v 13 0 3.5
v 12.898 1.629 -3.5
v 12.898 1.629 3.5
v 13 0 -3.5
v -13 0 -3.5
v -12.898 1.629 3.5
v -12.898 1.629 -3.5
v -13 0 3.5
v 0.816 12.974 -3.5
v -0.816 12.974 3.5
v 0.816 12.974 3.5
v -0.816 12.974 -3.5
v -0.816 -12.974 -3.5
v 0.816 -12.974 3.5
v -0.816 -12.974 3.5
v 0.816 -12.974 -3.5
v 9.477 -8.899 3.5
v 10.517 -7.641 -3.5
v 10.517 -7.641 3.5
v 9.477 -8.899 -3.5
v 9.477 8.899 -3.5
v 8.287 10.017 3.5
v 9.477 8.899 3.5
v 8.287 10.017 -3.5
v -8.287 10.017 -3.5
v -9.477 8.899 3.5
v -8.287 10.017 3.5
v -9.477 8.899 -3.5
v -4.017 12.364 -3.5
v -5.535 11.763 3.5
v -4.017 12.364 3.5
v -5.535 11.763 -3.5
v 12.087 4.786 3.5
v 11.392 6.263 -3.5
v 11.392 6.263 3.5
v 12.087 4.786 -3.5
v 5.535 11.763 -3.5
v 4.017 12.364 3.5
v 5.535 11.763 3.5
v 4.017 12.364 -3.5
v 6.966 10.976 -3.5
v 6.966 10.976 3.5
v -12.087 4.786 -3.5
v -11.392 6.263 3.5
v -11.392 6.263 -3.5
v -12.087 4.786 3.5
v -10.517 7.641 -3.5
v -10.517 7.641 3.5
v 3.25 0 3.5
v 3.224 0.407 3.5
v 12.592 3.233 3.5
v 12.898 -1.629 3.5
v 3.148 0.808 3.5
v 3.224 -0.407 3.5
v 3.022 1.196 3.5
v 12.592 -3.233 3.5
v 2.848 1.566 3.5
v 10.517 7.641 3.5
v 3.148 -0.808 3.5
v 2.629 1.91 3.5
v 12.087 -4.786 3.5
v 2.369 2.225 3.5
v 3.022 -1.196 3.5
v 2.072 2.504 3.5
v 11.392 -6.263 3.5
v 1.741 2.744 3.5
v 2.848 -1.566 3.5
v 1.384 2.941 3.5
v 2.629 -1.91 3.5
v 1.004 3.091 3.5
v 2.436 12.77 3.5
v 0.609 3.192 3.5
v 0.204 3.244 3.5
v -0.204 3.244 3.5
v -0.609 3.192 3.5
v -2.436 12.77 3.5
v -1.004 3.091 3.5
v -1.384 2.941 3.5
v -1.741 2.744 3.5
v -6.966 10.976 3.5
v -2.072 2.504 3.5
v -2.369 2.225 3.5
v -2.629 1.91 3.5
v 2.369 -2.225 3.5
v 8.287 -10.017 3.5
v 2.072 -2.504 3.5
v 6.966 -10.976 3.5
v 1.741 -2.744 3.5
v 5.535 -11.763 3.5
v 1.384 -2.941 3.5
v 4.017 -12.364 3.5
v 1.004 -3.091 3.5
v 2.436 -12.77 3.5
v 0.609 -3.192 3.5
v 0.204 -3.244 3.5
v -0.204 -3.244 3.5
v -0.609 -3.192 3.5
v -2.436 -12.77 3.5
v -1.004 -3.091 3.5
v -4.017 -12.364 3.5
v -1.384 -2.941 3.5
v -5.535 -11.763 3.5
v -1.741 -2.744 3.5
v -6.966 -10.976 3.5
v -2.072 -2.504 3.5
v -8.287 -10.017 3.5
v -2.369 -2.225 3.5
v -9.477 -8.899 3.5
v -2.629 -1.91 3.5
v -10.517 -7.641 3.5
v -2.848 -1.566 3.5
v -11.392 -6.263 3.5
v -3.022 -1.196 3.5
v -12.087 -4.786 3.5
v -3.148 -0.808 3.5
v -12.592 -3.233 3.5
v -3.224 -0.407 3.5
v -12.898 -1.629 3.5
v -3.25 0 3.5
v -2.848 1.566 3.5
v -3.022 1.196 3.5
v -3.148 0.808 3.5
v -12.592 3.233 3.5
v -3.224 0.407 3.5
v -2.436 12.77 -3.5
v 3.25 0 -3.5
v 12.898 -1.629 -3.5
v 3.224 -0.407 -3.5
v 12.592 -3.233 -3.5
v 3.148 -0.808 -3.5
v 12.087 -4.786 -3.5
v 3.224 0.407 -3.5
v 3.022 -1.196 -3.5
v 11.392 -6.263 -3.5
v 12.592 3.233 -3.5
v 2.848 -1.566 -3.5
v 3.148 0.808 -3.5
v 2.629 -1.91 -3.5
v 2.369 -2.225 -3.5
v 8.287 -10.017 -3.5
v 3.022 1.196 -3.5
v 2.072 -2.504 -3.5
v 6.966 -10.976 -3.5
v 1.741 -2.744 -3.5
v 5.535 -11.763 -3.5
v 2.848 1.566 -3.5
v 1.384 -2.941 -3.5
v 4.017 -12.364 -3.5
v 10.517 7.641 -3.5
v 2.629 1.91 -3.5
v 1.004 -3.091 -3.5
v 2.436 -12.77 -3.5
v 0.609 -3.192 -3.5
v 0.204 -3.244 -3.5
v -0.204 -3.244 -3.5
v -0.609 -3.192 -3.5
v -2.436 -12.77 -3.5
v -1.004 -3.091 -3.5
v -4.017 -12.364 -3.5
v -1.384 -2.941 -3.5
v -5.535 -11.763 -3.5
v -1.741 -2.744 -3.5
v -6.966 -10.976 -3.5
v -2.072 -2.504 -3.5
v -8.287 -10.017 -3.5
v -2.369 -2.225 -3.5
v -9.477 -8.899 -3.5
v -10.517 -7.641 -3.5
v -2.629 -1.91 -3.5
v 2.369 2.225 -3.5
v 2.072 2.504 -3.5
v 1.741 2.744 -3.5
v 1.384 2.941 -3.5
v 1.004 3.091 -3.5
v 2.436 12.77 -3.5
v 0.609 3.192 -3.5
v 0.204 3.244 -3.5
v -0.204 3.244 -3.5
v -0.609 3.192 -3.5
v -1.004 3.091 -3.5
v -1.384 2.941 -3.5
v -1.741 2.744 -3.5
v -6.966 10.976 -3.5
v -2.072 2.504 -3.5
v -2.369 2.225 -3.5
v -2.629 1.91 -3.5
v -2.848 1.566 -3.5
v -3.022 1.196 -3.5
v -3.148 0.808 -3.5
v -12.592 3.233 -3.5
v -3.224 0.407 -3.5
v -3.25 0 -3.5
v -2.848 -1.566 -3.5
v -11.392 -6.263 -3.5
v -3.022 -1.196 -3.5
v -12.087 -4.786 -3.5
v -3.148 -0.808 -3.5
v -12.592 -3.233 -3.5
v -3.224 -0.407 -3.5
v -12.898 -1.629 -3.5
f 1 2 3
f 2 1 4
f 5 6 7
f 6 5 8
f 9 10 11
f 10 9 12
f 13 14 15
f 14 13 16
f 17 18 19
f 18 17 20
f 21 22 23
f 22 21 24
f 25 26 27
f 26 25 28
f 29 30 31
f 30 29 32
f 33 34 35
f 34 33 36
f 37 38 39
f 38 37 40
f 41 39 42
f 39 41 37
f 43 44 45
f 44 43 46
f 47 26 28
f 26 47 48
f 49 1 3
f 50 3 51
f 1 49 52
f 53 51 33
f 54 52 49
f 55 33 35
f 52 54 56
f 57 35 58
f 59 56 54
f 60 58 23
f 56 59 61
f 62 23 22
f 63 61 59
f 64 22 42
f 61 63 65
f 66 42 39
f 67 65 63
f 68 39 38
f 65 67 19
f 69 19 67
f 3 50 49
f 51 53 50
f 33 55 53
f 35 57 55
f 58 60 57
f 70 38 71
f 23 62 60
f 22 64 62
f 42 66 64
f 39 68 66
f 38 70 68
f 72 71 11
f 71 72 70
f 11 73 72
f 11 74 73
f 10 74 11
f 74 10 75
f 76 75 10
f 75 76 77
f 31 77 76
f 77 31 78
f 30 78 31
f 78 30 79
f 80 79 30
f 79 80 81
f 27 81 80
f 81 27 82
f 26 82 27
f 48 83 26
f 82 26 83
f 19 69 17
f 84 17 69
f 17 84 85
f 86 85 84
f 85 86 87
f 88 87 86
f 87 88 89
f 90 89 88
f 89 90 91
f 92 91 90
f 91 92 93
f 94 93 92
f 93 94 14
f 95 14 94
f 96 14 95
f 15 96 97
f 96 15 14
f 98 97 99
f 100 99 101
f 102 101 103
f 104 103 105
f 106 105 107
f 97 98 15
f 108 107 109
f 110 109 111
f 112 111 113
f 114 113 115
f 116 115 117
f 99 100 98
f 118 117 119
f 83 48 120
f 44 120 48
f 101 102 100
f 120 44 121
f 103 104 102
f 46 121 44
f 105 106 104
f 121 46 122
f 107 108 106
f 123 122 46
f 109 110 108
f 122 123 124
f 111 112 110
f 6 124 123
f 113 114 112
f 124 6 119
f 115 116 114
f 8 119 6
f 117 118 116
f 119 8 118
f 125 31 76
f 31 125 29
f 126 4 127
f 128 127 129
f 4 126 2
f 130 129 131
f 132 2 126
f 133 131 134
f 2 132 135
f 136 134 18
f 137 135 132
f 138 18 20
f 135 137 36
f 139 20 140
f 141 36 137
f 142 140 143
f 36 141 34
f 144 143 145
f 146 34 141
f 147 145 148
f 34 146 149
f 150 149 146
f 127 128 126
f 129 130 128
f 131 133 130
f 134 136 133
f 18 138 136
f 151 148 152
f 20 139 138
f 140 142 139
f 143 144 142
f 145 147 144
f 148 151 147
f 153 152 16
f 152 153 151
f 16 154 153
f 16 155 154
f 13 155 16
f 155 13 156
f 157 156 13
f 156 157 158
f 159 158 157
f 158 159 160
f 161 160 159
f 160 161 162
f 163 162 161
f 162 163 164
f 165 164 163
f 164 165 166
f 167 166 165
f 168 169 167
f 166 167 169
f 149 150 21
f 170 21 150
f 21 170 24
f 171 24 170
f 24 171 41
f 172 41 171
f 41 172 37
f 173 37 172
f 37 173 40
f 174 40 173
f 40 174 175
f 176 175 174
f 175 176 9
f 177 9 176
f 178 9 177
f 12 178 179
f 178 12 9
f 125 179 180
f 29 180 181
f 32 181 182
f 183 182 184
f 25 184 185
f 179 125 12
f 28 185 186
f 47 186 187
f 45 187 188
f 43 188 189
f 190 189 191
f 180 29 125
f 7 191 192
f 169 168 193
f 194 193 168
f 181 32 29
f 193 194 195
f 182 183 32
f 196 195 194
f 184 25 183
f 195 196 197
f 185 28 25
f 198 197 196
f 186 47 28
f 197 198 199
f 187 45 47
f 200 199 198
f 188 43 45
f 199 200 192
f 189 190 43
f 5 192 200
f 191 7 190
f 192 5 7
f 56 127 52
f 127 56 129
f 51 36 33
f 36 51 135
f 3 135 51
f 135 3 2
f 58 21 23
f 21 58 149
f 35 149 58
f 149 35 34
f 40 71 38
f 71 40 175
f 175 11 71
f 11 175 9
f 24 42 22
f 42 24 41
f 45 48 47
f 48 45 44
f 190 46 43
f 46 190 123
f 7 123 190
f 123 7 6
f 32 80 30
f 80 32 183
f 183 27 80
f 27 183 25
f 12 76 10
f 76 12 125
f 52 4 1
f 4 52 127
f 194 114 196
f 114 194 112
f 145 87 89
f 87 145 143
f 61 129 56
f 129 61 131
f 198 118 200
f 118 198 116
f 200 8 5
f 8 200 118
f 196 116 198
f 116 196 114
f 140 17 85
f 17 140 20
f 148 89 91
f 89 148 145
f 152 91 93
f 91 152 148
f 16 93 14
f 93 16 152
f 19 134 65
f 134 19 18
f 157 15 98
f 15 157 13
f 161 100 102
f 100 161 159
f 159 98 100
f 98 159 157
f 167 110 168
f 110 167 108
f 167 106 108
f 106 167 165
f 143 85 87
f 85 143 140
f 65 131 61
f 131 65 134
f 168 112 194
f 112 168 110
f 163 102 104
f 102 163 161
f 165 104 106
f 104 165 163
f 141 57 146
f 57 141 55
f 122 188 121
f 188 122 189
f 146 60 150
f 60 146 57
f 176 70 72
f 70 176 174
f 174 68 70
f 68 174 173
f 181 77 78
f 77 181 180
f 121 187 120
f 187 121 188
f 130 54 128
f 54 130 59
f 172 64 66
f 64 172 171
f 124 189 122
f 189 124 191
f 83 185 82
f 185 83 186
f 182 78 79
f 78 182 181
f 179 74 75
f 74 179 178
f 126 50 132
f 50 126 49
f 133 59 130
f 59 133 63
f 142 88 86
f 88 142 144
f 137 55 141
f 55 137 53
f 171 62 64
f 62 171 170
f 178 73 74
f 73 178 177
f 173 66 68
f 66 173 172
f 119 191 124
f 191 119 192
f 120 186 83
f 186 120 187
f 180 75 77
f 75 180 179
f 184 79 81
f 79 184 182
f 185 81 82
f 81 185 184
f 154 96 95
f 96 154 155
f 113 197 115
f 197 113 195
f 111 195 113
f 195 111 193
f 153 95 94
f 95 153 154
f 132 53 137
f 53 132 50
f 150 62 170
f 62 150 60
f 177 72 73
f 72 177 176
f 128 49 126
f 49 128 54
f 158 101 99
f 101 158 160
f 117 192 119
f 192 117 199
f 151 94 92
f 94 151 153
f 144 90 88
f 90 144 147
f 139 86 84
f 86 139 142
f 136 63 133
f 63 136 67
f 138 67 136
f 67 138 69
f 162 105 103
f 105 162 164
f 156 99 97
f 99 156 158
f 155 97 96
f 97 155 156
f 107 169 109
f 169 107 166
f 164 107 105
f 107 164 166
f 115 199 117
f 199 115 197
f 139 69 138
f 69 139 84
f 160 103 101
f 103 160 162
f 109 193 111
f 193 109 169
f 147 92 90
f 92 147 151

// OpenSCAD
$fn = 50;


difference() {
	union() {
		translate(v = [0, 0, -3.5000000000]) {
			cylinder(h = 7, r = 13.0000000000);
		}
	}
	union() {
		translate(v = [0, 0, -100.0000000000]) {
			cylinder(h = 200, r = 3.2500000000);
		}
	}
}
